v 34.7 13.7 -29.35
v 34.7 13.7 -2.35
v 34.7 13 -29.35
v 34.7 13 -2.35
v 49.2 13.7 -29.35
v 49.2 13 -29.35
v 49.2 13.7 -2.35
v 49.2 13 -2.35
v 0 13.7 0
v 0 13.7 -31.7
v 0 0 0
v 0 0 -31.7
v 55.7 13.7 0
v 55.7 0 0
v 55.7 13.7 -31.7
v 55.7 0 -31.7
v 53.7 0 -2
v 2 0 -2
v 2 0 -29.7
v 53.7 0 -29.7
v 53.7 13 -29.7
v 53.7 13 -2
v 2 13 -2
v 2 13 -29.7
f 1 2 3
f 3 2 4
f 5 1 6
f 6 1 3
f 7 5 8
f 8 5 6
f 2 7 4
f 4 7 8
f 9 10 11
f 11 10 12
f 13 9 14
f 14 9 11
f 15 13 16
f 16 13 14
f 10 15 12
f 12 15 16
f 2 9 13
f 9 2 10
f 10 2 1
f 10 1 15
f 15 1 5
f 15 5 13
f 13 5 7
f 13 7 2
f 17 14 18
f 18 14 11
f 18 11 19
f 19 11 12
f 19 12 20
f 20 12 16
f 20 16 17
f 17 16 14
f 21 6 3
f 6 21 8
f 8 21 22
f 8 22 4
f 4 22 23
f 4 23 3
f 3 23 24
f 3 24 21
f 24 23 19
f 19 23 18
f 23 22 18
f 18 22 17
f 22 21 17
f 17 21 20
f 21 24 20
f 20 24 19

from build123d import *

# Parameters (mm, degrees)
SKETCH1_W           = 55.7
SKETCH1_H           = 31.7
BOSS_EXTRUDE1_DEPTH = 13.7
SKETCH2_W           = 14.5
SKETCH2_H           = 27
CUT_EXTRUDE1_DEPTH  = 13.7
SKETCH3_W           = 51.7
SKETCH3_H           = 27.7
CUT_EXTRUDE2_DEPTH  = 13


with BuildPart() as part:
    # Sketch1 → Boss-Extrude1 (new body)
    with BuildSketch(Plane(origin=(0, 0, 0), x_dir=(1, 0, 0), z_dir=(0, 1, 0))):
        with Locations((27.85, 15.85)):
            Rectangle(SKETCH1_W, SKETCH1_H)
    extrude(amount=BOSS_EXTRUDE1_DEPTH)

    # Sketch2 → Cut-Extrude1 (cut)
    with BuildSketch(Plane(origin=(0, 13.7, 0), x_dir=(1, 0, 0), z_dir=(0, 1, 0))):
        with Locations((41.95, 15.85)):
            Rectangle(SKETCH2_W, SKETCH2_H)
    extrude(amount=-CUT_EXTRUDE1_DEPTH, mode=Mode.SUBTRACT)

    # Sketch3 → Cut-Extrude2 (cut)
    with BuildSketch(Plane.XZ):
        with Locations((27.85, -15.85)):
            Rectangle(SKETCH3_W, SKETCH3_H)
    extrude(amount=-CUT_EXTRUDE2_DEPTH, mode=Mode.SUBTRACT)


solid = part.part
